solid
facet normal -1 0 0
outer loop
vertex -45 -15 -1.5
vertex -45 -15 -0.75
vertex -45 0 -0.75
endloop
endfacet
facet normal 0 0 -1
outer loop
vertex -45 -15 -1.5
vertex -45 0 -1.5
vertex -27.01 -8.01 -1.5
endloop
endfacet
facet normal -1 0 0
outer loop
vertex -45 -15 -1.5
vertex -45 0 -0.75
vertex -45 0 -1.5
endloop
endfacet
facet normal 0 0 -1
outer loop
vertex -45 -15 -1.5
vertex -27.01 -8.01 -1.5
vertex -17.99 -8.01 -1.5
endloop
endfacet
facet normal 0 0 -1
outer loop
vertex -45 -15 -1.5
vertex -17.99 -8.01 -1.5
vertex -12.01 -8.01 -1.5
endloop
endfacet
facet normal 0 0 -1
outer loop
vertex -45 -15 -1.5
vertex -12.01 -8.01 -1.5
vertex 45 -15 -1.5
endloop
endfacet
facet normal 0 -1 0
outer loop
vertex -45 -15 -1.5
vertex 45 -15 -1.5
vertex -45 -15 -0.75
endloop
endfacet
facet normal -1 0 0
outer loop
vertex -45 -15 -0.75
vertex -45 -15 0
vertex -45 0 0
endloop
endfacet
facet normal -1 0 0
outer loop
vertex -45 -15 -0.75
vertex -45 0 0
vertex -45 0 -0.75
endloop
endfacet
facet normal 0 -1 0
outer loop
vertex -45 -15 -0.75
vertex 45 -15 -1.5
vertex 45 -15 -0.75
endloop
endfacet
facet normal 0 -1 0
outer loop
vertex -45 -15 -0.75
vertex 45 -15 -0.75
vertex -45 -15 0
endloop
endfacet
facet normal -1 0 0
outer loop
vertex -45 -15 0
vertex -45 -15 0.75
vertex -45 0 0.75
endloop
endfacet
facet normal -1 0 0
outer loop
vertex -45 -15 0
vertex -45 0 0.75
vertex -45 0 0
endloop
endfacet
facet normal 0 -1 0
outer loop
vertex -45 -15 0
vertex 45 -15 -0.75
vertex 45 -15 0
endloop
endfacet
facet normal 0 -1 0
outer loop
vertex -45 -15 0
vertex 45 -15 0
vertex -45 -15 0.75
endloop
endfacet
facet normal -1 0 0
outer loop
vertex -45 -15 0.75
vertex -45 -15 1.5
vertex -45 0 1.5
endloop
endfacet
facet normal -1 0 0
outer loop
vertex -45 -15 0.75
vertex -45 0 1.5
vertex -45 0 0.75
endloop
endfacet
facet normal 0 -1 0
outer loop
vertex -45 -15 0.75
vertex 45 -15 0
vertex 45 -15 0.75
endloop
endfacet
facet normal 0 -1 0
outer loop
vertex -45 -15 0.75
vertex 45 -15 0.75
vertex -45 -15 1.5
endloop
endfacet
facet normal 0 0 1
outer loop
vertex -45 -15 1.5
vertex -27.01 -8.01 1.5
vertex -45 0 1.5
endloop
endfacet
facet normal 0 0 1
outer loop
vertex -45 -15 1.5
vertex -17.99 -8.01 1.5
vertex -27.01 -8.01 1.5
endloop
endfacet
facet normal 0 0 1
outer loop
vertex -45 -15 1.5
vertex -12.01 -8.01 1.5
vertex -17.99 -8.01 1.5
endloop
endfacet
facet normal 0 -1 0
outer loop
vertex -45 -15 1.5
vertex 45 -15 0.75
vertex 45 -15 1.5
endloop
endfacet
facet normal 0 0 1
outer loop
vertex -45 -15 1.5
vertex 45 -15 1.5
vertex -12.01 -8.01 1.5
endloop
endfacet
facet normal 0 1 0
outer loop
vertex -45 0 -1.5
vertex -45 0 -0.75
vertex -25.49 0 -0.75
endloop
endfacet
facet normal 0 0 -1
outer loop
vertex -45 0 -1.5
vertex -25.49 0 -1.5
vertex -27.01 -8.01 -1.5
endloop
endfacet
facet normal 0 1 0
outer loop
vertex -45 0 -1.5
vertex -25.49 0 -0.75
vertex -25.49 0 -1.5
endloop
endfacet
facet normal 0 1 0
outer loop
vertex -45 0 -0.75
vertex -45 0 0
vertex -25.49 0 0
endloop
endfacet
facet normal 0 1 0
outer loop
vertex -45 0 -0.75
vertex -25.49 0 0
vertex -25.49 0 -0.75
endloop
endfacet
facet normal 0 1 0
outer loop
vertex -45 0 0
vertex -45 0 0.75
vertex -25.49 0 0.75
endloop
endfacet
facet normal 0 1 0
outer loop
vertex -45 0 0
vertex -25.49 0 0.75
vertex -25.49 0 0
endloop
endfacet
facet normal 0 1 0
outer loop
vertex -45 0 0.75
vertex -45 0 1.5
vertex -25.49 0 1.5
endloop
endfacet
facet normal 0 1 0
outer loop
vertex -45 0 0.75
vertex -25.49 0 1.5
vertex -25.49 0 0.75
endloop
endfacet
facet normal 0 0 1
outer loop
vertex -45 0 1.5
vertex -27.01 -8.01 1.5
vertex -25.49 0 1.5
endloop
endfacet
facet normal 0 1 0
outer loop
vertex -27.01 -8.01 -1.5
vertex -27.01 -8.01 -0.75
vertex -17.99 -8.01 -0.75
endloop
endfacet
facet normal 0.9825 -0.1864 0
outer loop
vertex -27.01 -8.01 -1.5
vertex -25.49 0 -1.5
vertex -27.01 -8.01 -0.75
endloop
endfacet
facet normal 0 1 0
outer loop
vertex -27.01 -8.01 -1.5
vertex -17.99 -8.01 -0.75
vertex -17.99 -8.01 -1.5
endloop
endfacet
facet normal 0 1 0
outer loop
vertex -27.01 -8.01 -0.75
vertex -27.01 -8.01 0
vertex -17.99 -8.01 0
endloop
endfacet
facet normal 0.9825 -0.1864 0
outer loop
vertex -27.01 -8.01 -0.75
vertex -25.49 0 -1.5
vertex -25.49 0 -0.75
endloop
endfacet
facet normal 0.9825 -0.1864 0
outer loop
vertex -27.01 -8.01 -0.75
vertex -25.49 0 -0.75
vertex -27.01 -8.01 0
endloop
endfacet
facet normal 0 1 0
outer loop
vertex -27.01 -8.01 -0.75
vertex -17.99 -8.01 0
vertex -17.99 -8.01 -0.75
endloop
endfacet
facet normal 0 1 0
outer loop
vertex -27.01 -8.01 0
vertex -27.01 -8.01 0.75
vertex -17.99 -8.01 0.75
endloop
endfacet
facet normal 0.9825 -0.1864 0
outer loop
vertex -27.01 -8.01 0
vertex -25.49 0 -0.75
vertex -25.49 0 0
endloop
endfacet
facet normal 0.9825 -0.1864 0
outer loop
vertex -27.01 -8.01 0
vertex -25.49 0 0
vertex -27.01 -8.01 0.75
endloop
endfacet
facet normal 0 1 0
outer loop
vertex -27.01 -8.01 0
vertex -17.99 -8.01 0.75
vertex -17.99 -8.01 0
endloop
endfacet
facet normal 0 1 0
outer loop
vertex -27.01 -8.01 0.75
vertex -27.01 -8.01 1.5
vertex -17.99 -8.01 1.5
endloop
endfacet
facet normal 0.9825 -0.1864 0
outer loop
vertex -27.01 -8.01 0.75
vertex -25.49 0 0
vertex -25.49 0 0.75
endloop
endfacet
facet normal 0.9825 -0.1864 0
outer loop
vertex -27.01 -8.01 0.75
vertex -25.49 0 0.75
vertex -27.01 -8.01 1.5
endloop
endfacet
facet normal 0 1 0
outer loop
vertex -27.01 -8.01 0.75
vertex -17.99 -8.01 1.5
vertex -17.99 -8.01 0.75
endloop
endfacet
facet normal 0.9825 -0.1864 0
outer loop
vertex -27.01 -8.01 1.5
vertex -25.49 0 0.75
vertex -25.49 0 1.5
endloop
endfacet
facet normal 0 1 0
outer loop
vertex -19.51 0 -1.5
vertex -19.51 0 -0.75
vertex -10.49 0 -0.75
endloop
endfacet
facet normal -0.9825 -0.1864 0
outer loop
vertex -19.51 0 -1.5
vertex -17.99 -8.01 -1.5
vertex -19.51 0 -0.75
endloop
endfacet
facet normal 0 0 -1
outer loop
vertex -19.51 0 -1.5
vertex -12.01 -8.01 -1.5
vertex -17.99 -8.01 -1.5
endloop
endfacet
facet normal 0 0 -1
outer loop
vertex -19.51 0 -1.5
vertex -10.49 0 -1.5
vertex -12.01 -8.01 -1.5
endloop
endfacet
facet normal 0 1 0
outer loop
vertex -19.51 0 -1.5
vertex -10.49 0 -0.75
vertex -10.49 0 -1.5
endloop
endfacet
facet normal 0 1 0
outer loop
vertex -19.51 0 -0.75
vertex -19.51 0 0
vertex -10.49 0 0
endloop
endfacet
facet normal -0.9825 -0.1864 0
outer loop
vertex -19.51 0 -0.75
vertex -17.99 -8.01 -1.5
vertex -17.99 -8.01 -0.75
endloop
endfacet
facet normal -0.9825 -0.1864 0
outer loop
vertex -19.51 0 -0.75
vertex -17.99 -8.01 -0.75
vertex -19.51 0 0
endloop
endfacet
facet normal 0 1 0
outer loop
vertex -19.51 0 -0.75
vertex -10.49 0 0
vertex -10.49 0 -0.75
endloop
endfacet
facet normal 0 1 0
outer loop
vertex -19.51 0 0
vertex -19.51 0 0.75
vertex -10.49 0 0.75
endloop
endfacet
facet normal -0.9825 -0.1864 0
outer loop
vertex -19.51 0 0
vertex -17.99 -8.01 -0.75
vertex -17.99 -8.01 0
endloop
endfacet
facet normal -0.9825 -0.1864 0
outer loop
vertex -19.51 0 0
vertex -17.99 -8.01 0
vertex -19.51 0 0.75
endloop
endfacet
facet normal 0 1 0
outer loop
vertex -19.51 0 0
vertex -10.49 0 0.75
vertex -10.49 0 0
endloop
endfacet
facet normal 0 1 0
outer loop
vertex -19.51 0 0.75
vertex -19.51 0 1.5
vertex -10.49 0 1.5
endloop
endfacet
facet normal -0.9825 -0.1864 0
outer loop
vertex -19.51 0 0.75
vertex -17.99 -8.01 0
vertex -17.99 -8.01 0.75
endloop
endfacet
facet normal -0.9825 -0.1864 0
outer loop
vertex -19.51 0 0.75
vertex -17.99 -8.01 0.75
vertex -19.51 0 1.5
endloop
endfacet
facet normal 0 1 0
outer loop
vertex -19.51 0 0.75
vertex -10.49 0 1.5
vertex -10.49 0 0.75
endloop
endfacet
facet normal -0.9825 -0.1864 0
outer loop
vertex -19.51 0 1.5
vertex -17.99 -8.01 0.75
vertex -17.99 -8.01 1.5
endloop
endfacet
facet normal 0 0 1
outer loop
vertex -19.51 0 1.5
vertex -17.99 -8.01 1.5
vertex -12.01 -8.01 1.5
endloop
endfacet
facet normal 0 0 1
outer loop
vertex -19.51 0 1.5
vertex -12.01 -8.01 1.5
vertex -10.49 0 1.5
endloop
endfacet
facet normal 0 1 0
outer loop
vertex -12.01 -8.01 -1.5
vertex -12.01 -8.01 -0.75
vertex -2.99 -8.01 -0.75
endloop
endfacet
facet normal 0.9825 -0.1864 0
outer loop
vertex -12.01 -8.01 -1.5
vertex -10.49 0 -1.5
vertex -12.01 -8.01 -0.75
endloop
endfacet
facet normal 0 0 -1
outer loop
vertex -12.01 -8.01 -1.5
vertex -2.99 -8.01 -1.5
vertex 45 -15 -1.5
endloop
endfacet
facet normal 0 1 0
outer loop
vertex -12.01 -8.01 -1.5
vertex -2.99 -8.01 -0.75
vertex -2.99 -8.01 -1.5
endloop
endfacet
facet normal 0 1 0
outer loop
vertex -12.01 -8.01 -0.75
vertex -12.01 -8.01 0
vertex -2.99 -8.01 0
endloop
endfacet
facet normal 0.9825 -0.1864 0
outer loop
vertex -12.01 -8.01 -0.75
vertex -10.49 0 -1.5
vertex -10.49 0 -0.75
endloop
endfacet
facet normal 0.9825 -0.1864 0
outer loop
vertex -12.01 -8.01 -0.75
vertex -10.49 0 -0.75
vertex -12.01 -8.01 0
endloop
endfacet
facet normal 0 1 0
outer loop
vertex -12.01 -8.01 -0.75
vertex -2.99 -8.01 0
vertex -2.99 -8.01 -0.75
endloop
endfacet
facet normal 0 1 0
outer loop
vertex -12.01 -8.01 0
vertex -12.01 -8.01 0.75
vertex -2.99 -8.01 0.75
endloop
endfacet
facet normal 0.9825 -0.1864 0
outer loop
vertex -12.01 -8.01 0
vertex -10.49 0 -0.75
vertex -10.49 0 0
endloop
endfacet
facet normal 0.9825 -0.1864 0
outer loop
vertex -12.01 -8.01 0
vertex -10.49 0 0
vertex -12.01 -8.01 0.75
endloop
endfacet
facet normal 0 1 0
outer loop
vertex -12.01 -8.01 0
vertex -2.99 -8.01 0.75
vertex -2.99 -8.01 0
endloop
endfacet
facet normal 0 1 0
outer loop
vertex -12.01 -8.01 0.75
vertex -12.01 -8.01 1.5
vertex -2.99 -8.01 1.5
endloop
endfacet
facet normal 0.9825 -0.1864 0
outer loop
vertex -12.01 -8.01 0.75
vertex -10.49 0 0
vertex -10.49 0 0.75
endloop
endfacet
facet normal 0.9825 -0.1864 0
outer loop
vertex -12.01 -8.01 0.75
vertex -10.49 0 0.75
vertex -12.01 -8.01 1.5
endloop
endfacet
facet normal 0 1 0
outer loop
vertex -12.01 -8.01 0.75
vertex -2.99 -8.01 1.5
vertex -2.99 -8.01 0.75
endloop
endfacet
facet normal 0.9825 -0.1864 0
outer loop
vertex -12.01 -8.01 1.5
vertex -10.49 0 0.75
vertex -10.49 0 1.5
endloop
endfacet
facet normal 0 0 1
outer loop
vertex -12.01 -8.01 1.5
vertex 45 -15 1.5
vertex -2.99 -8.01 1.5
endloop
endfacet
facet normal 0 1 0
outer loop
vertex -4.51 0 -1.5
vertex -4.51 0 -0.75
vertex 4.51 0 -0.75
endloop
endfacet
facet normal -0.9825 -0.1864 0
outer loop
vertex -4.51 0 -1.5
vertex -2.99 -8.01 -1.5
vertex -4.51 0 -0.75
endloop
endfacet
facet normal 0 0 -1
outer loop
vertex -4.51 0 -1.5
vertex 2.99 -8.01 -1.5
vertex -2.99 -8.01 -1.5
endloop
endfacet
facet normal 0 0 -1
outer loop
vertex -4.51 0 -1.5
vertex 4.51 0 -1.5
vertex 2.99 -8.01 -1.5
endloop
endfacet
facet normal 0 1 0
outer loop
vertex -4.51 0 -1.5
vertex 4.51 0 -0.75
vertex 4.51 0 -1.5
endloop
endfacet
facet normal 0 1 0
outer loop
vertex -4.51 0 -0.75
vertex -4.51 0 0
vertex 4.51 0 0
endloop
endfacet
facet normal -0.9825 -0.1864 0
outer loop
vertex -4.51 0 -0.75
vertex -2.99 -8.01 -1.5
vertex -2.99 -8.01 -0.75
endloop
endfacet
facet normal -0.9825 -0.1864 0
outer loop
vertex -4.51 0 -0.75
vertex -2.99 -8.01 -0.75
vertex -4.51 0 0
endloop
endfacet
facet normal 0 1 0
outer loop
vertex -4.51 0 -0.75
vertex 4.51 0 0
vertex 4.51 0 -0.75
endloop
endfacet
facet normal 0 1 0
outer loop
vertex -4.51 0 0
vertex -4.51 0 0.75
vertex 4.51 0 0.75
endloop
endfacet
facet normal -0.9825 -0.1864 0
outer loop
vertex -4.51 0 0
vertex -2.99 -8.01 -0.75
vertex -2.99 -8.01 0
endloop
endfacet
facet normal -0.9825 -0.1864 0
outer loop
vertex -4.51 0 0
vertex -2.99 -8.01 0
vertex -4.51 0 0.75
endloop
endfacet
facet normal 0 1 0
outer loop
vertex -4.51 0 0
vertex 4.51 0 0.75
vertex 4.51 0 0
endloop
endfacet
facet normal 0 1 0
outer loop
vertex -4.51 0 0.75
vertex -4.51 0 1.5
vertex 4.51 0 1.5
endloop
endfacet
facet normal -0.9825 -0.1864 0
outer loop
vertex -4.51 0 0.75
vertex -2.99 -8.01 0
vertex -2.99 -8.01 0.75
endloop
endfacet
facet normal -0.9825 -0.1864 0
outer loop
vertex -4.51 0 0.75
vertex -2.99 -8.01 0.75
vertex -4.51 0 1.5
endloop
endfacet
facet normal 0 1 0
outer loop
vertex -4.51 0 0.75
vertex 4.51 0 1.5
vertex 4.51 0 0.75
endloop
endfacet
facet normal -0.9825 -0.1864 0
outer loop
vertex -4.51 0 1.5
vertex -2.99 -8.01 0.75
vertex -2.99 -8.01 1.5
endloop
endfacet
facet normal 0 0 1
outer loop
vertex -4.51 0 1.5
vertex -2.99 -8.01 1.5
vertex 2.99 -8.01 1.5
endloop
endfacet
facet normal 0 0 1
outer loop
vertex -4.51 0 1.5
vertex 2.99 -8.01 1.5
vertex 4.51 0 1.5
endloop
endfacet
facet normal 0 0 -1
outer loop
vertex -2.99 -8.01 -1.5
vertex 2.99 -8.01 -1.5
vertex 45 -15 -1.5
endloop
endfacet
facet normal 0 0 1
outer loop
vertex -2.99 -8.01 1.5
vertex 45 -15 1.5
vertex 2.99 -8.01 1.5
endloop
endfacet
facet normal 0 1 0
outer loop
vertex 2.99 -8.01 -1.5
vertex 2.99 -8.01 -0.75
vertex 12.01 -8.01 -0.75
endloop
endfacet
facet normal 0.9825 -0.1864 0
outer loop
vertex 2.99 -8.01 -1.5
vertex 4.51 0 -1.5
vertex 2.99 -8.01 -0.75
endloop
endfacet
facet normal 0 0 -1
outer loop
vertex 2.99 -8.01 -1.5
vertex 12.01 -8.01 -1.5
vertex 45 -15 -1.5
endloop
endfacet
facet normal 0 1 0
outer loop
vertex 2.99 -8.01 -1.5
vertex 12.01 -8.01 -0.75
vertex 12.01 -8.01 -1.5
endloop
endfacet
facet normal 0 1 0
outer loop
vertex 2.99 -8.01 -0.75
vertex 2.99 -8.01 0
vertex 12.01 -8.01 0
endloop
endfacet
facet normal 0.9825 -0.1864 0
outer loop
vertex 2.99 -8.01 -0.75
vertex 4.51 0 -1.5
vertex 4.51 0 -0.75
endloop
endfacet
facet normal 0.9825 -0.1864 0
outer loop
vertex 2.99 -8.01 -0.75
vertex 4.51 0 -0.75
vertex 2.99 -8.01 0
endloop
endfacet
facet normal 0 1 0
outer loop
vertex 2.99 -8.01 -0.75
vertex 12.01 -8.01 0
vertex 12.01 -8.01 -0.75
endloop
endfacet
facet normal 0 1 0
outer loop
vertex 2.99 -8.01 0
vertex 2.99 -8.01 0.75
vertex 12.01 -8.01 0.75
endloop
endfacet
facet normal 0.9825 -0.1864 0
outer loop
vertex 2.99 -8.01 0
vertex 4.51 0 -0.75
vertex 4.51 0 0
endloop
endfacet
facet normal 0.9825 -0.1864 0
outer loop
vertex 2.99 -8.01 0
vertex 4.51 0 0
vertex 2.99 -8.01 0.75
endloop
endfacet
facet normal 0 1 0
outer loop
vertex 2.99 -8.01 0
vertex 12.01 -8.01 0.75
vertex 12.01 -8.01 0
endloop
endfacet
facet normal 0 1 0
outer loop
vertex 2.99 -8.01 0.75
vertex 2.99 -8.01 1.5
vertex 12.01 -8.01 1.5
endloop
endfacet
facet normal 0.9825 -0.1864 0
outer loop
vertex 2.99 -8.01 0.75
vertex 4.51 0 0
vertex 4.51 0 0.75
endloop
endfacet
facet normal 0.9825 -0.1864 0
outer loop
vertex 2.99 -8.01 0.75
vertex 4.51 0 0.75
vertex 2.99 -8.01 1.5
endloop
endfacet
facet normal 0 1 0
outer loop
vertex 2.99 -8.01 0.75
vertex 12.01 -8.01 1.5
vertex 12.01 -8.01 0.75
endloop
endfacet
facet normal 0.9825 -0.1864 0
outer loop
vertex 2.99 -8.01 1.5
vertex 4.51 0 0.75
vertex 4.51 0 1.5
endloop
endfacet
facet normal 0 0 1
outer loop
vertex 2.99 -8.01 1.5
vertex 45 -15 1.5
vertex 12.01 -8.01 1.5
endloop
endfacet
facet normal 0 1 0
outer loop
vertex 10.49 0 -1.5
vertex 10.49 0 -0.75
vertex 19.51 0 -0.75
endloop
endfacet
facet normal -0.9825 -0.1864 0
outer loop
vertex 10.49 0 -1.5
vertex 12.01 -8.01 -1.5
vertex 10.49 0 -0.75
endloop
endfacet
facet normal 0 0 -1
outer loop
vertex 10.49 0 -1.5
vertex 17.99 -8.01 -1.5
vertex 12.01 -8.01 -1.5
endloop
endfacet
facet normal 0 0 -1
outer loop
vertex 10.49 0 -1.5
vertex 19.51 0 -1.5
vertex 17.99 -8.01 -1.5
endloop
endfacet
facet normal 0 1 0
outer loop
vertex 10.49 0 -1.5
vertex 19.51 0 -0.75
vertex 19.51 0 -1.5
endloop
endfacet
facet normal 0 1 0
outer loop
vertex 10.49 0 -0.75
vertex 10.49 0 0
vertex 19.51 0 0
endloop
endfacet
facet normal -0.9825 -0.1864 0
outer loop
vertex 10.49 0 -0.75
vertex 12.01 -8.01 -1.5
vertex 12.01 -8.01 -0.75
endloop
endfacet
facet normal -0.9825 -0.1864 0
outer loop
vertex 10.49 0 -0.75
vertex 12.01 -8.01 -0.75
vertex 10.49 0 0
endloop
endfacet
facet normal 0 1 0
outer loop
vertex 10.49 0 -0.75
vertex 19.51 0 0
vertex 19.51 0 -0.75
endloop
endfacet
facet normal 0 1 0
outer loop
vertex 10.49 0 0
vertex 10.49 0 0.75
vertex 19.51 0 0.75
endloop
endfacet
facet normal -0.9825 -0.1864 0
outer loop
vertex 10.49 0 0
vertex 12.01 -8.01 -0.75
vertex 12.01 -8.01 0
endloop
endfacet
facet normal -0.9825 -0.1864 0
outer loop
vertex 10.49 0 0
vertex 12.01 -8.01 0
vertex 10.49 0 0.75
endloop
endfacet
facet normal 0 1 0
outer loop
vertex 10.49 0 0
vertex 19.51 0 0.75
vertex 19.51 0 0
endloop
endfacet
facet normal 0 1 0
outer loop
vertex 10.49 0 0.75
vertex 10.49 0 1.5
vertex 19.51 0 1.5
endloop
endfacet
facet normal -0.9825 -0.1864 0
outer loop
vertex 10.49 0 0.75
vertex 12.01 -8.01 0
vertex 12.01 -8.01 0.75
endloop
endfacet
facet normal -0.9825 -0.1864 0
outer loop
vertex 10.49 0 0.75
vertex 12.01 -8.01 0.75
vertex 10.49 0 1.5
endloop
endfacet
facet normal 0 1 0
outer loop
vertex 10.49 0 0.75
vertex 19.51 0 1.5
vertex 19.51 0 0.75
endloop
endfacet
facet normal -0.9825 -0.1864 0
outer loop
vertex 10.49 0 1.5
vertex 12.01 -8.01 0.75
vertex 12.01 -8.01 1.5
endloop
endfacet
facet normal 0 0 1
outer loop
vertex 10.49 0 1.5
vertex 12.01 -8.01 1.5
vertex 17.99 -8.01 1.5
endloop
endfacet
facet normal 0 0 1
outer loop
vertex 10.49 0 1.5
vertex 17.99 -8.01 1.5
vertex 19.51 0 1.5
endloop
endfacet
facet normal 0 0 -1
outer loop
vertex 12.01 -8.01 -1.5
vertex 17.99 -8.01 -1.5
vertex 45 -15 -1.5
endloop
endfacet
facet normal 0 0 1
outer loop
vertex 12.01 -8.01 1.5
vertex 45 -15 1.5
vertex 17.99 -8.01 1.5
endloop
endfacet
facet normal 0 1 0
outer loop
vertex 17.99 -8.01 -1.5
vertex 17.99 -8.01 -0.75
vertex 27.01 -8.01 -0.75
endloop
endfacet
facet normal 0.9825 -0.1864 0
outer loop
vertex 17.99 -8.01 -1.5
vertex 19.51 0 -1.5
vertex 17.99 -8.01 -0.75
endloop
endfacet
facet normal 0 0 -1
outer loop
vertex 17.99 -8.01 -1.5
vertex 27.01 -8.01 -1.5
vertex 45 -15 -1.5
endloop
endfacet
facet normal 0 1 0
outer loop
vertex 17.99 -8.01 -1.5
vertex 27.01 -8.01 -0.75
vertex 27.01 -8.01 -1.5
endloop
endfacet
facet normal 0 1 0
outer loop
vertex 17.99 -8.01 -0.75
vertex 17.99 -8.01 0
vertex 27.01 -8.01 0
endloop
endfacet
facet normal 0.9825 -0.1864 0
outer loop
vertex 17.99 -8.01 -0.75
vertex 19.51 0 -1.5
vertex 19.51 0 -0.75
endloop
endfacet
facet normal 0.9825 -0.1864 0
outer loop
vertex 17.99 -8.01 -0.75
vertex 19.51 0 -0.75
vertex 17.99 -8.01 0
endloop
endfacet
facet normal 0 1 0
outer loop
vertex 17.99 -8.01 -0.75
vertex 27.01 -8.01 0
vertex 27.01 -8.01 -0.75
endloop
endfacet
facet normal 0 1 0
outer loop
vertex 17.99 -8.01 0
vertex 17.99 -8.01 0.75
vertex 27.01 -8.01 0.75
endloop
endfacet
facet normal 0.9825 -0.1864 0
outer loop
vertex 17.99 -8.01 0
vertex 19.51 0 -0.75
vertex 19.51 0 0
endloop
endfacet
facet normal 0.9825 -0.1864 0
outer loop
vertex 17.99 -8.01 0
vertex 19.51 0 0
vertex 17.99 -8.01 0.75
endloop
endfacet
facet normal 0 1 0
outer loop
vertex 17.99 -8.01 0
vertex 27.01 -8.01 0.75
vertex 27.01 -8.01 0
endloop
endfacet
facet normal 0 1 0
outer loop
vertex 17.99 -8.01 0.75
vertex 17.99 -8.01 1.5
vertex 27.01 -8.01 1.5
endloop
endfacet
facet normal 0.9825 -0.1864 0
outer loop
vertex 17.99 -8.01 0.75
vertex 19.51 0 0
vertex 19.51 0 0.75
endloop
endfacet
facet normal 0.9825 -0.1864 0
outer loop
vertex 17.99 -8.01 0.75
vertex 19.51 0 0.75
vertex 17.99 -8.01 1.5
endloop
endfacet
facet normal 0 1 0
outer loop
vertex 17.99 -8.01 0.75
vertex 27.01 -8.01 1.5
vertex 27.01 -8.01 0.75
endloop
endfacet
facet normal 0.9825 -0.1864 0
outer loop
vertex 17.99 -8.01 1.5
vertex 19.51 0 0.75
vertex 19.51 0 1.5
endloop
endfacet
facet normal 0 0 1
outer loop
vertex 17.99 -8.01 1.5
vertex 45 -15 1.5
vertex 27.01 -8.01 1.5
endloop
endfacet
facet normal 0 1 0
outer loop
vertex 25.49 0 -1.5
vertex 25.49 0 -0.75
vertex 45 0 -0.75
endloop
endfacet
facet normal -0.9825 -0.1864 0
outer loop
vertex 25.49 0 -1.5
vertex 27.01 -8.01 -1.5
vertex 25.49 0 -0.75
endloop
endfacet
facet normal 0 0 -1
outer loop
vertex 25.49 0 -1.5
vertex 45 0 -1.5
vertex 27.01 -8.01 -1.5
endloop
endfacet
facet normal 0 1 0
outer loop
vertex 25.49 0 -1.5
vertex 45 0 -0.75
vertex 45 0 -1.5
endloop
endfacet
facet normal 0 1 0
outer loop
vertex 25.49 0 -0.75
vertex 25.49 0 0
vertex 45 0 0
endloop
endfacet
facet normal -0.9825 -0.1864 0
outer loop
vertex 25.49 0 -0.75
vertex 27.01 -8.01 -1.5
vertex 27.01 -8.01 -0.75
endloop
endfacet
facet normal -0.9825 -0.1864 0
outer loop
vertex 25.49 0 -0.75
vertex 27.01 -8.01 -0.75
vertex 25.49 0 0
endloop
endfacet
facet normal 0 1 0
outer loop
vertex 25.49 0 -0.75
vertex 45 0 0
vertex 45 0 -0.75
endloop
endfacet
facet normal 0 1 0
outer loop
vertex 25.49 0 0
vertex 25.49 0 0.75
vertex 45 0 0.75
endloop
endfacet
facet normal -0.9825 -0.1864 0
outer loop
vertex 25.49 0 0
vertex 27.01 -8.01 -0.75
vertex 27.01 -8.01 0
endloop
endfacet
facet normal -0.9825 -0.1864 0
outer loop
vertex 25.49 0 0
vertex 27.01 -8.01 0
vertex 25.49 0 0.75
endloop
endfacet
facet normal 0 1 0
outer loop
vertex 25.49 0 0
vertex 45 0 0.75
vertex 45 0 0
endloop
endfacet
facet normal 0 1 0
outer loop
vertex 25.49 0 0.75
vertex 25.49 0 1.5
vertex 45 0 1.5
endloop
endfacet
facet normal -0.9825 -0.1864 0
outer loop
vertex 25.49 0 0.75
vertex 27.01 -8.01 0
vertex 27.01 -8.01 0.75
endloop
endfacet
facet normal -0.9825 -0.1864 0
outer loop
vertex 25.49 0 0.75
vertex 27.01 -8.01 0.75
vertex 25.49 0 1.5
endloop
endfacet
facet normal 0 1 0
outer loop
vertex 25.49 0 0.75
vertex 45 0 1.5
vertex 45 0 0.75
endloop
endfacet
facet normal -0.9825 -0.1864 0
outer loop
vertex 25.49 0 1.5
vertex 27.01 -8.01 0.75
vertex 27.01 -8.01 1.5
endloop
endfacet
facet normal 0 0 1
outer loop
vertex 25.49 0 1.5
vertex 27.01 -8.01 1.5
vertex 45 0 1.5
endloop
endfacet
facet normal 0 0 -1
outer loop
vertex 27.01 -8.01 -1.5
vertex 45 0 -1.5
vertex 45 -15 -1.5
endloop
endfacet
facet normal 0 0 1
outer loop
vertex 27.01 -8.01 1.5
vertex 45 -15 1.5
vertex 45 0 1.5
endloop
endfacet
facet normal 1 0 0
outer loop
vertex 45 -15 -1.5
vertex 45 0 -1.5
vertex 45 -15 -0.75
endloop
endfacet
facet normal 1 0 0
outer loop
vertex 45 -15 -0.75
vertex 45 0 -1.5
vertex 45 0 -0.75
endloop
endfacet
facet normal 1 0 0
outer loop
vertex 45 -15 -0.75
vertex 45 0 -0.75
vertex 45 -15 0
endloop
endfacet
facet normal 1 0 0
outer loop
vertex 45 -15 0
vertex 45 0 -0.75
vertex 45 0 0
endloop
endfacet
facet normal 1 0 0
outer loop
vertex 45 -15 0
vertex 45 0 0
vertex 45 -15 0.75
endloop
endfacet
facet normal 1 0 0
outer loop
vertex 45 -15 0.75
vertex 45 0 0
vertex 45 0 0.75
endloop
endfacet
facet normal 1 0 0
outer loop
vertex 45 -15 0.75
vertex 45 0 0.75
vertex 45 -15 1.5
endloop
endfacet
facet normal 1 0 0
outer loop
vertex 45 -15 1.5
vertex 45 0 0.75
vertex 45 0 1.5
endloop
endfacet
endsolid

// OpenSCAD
// Start: lazy_union
default_5_default_5();
// End: lazy_union

// Modules.

// 'PartMaterial undef-default - default 5.0'
module default_5_default_5() {
  // 'None : _combine_solids_and_holes'
  union() {
    // 'default : _combine_solids_and_holes'
    union() {
      // 'front'
      multmatrix(m=[[-1.0, 0.0, 0.0, 0.0], [0.0, -1.0, 0.0, 0.0], [0.0, 0.0, 1.0, -1.5], [0.0, 0.0, 0.0, 1.0]]) {
        // 'front : _combine_solids_and_holes'
        union() {
          // 'front'
          linear_extrude(height=3.0, twist=0.0, slices=4, scale=[1.0, 1.0]) {
            polygon(points=[[0.0, 0.0], [0.0, 0.0], [-4.51, 0.0], [-2.99, 8.01], [-7.5, 8.01], [-12.01, 8.01], [-10.49, 0.0], [-15.0, 0.0], [-15.0, 0.0], [-19.509999999999998, 0.0], [-17.990000000000002, 8.01], [-22.5, 8.01], [-27.009999999999998, 8.01], [-25.490000000000002, 0.0], [-30.0, 0.0], [-45.0, 0.0], [-45.0, 15.0], [0.0, 15.0], [45.0, 15.0], [45.0, 0.0], [30.0, 0.0], [30.0, 0.0], [25.490000000000002, 0.0], [27.009999999999998, 8.01], [22.5, 8.01], [17.990000000000002, 8.01], [19.509999999999998, 0.0], [15.0, 0.0], [15.0, 0.0], [10.49, 0.0], [12.01, 8.01], [7.5, 8.01], [2.99, 8.01], [4.51, 0.0], [0.0, 0.0]], paths=[[0], [1, 2, 3, 4, 5, 6, 7, 1], [8, 9, 10, 11, 12, 13, 14, 15, 16, 17, 18, 19, 20, 8], [21, 22, 23, 24, 25, 26, 27, 21], [28, 29, 30, 31, 32, 33, 34, 28]]);
          }
        }
      }
    }
  }
} // end module default_5_default_5
